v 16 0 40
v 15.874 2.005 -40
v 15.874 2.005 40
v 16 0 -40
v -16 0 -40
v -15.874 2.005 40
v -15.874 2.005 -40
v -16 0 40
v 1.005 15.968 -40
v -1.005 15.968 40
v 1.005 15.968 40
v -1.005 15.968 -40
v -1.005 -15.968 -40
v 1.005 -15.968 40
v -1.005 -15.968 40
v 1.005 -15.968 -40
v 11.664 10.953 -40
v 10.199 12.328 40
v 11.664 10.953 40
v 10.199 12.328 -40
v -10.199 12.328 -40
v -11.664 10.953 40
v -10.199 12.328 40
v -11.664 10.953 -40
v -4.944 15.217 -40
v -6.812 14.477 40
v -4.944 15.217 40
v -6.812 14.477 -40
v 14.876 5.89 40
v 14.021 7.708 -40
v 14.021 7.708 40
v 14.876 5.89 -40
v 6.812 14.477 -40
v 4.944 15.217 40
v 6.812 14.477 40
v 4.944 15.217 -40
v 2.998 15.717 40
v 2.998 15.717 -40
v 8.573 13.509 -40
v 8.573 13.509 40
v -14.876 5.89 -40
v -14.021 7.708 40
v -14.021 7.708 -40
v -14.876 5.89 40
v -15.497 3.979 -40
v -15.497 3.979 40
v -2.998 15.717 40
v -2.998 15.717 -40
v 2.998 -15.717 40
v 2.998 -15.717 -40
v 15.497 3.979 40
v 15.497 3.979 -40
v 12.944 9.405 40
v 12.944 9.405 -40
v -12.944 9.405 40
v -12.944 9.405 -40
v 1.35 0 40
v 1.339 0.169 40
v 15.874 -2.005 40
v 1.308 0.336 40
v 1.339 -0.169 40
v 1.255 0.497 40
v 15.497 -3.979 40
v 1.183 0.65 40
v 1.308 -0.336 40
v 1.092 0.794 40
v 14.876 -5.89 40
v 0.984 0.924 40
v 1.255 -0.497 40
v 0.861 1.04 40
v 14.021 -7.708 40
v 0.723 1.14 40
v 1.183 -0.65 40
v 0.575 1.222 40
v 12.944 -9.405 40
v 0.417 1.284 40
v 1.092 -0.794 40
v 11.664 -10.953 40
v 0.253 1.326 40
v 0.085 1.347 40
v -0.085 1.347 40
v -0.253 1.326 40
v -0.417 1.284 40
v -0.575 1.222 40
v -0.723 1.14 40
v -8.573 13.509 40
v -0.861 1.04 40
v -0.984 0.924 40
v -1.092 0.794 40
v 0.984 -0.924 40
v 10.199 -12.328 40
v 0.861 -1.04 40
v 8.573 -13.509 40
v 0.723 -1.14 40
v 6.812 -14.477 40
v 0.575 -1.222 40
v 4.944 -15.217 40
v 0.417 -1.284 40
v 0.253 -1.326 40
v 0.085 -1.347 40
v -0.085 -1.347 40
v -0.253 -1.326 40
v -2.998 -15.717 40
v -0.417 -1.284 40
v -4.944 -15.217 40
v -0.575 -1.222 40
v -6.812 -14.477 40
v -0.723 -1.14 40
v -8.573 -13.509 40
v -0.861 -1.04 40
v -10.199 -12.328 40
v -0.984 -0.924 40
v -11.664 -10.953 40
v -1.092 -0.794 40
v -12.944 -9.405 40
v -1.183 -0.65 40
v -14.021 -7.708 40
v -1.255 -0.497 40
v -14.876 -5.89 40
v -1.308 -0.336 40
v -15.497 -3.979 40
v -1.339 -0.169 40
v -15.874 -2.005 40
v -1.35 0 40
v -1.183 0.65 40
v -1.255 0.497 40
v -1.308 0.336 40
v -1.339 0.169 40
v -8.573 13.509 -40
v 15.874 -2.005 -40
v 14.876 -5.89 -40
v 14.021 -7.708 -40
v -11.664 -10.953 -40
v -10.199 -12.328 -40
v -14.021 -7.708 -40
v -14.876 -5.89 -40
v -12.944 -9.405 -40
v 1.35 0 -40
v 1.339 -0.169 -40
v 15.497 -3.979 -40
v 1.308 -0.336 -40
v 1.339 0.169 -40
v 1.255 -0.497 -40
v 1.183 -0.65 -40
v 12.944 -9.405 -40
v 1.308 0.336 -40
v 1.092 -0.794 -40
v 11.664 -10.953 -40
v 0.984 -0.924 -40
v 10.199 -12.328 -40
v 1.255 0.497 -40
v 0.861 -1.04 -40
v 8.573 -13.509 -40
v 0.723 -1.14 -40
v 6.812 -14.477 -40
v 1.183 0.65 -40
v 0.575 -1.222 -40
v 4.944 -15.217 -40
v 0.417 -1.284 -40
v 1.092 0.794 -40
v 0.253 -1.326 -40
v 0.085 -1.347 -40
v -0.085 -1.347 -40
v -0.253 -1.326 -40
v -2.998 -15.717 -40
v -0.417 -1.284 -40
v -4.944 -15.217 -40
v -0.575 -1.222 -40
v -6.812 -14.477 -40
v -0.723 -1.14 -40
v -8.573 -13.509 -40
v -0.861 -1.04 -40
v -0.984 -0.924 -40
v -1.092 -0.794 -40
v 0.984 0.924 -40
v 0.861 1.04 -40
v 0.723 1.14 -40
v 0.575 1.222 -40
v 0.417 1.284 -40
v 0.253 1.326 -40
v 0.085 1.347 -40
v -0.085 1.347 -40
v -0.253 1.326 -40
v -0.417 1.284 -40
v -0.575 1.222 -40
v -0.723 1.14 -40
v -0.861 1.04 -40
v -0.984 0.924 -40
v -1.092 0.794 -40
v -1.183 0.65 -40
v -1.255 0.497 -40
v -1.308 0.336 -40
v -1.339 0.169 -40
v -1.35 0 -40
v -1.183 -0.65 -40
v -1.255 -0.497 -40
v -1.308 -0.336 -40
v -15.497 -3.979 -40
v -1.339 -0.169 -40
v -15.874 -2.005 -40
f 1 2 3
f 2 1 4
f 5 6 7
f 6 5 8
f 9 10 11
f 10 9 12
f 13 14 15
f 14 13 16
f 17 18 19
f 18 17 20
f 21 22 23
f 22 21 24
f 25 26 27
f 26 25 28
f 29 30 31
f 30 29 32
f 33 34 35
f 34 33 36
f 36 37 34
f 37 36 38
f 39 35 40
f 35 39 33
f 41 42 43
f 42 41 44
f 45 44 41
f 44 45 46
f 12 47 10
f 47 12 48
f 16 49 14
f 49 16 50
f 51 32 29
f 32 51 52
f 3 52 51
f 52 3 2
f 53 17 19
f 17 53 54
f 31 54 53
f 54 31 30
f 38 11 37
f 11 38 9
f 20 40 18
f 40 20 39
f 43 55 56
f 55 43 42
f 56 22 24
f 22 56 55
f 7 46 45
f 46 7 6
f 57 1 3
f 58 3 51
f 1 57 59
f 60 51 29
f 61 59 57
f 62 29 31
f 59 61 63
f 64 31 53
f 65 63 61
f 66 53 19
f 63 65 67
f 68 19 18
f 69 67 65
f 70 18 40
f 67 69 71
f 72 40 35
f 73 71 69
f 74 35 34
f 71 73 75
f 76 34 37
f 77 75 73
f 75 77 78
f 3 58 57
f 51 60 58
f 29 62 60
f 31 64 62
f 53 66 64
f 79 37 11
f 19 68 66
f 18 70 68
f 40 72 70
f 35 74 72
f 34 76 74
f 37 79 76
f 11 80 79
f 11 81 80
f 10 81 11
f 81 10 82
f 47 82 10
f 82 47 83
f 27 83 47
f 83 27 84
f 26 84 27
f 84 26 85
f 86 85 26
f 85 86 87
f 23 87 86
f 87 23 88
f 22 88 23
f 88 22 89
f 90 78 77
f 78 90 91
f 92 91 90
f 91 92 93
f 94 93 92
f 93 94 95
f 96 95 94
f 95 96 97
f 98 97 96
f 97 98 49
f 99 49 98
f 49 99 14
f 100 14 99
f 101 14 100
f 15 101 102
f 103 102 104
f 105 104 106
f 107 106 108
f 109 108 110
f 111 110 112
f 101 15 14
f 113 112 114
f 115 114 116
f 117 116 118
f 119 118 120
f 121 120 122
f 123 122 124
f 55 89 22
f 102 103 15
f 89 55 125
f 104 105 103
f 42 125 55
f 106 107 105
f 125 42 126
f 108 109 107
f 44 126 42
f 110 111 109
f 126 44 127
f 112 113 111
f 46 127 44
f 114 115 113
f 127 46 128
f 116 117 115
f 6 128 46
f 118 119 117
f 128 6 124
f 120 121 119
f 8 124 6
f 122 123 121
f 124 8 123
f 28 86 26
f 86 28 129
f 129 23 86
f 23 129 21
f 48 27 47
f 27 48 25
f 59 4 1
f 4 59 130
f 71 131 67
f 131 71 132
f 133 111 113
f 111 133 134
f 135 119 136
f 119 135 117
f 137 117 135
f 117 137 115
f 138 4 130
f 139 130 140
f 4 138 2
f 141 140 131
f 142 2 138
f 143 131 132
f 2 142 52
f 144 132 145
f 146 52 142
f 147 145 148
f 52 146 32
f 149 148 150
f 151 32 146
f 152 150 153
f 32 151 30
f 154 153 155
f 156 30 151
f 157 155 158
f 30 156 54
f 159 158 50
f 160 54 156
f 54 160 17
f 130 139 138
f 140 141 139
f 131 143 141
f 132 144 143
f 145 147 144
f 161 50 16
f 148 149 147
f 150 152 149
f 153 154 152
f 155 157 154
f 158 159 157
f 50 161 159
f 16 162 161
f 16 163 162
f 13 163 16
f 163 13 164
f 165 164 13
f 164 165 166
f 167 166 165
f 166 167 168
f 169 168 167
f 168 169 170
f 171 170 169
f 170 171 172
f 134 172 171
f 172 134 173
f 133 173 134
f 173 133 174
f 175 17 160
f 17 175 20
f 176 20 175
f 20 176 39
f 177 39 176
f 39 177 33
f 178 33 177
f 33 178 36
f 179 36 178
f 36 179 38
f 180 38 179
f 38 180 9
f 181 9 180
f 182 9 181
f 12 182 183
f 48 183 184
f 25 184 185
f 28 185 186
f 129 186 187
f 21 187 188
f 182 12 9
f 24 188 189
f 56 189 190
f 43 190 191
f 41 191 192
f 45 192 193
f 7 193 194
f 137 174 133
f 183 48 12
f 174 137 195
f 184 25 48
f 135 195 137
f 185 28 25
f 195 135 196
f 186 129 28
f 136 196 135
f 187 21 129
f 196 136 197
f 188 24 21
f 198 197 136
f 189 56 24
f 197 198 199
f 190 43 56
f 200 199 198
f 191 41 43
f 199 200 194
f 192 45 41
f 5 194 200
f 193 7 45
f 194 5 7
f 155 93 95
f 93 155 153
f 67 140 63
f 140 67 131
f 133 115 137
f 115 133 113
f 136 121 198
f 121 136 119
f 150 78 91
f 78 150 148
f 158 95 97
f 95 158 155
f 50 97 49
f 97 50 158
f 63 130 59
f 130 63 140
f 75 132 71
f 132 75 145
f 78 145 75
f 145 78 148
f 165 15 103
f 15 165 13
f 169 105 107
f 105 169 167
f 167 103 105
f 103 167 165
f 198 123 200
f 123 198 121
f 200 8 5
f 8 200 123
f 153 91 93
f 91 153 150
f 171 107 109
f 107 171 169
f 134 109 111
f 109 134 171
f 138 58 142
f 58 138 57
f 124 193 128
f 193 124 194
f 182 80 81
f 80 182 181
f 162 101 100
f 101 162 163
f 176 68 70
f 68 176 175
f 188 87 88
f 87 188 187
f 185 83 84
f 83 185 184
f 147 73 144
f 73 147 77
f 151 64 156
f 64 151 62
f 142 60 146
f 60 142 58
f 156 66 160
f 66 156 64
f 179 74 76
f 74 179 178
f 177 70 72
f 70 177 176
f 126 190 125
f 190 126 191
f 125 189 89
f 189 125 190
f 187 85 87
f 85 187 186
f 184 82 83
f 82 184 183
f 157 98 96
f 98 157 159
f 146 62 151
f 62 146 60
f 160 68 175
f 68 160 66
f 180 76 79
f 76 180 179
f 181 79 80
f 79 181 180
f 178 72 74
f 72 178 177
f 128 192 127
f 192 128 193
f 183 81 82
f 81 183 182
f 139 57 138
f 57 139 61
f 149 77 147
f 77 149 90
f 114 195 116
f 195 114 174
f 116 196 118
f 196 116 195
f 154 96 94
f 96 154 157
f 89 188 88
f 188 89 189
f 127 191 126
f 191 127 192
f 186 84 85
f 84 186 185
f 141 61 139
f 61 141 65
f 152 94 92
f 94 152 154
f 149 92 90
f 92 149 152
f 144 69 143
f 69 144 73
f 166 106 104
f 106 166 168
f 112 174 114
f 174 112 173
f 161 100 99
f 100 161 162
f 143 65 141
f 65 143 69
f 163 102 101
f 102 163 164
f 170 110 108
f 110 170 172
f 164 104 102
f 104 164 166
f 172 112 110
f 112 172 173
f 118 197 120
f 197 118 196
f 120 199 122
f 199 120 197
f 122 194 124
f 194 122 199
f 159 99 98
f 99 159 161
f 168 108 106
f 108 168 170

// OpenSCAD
$fn = 50;


difference() {
	union() {
		translate(v = [0, 0, -40.0000000000]) {
			cylinder(h = 80, r = 16.0000000000);
		}
	}
	union() {
		translate(v = [0, 0, -100.0000000000]) {
			cylinder(h = 200, r = 1.3500000000);
		}
	}
}
